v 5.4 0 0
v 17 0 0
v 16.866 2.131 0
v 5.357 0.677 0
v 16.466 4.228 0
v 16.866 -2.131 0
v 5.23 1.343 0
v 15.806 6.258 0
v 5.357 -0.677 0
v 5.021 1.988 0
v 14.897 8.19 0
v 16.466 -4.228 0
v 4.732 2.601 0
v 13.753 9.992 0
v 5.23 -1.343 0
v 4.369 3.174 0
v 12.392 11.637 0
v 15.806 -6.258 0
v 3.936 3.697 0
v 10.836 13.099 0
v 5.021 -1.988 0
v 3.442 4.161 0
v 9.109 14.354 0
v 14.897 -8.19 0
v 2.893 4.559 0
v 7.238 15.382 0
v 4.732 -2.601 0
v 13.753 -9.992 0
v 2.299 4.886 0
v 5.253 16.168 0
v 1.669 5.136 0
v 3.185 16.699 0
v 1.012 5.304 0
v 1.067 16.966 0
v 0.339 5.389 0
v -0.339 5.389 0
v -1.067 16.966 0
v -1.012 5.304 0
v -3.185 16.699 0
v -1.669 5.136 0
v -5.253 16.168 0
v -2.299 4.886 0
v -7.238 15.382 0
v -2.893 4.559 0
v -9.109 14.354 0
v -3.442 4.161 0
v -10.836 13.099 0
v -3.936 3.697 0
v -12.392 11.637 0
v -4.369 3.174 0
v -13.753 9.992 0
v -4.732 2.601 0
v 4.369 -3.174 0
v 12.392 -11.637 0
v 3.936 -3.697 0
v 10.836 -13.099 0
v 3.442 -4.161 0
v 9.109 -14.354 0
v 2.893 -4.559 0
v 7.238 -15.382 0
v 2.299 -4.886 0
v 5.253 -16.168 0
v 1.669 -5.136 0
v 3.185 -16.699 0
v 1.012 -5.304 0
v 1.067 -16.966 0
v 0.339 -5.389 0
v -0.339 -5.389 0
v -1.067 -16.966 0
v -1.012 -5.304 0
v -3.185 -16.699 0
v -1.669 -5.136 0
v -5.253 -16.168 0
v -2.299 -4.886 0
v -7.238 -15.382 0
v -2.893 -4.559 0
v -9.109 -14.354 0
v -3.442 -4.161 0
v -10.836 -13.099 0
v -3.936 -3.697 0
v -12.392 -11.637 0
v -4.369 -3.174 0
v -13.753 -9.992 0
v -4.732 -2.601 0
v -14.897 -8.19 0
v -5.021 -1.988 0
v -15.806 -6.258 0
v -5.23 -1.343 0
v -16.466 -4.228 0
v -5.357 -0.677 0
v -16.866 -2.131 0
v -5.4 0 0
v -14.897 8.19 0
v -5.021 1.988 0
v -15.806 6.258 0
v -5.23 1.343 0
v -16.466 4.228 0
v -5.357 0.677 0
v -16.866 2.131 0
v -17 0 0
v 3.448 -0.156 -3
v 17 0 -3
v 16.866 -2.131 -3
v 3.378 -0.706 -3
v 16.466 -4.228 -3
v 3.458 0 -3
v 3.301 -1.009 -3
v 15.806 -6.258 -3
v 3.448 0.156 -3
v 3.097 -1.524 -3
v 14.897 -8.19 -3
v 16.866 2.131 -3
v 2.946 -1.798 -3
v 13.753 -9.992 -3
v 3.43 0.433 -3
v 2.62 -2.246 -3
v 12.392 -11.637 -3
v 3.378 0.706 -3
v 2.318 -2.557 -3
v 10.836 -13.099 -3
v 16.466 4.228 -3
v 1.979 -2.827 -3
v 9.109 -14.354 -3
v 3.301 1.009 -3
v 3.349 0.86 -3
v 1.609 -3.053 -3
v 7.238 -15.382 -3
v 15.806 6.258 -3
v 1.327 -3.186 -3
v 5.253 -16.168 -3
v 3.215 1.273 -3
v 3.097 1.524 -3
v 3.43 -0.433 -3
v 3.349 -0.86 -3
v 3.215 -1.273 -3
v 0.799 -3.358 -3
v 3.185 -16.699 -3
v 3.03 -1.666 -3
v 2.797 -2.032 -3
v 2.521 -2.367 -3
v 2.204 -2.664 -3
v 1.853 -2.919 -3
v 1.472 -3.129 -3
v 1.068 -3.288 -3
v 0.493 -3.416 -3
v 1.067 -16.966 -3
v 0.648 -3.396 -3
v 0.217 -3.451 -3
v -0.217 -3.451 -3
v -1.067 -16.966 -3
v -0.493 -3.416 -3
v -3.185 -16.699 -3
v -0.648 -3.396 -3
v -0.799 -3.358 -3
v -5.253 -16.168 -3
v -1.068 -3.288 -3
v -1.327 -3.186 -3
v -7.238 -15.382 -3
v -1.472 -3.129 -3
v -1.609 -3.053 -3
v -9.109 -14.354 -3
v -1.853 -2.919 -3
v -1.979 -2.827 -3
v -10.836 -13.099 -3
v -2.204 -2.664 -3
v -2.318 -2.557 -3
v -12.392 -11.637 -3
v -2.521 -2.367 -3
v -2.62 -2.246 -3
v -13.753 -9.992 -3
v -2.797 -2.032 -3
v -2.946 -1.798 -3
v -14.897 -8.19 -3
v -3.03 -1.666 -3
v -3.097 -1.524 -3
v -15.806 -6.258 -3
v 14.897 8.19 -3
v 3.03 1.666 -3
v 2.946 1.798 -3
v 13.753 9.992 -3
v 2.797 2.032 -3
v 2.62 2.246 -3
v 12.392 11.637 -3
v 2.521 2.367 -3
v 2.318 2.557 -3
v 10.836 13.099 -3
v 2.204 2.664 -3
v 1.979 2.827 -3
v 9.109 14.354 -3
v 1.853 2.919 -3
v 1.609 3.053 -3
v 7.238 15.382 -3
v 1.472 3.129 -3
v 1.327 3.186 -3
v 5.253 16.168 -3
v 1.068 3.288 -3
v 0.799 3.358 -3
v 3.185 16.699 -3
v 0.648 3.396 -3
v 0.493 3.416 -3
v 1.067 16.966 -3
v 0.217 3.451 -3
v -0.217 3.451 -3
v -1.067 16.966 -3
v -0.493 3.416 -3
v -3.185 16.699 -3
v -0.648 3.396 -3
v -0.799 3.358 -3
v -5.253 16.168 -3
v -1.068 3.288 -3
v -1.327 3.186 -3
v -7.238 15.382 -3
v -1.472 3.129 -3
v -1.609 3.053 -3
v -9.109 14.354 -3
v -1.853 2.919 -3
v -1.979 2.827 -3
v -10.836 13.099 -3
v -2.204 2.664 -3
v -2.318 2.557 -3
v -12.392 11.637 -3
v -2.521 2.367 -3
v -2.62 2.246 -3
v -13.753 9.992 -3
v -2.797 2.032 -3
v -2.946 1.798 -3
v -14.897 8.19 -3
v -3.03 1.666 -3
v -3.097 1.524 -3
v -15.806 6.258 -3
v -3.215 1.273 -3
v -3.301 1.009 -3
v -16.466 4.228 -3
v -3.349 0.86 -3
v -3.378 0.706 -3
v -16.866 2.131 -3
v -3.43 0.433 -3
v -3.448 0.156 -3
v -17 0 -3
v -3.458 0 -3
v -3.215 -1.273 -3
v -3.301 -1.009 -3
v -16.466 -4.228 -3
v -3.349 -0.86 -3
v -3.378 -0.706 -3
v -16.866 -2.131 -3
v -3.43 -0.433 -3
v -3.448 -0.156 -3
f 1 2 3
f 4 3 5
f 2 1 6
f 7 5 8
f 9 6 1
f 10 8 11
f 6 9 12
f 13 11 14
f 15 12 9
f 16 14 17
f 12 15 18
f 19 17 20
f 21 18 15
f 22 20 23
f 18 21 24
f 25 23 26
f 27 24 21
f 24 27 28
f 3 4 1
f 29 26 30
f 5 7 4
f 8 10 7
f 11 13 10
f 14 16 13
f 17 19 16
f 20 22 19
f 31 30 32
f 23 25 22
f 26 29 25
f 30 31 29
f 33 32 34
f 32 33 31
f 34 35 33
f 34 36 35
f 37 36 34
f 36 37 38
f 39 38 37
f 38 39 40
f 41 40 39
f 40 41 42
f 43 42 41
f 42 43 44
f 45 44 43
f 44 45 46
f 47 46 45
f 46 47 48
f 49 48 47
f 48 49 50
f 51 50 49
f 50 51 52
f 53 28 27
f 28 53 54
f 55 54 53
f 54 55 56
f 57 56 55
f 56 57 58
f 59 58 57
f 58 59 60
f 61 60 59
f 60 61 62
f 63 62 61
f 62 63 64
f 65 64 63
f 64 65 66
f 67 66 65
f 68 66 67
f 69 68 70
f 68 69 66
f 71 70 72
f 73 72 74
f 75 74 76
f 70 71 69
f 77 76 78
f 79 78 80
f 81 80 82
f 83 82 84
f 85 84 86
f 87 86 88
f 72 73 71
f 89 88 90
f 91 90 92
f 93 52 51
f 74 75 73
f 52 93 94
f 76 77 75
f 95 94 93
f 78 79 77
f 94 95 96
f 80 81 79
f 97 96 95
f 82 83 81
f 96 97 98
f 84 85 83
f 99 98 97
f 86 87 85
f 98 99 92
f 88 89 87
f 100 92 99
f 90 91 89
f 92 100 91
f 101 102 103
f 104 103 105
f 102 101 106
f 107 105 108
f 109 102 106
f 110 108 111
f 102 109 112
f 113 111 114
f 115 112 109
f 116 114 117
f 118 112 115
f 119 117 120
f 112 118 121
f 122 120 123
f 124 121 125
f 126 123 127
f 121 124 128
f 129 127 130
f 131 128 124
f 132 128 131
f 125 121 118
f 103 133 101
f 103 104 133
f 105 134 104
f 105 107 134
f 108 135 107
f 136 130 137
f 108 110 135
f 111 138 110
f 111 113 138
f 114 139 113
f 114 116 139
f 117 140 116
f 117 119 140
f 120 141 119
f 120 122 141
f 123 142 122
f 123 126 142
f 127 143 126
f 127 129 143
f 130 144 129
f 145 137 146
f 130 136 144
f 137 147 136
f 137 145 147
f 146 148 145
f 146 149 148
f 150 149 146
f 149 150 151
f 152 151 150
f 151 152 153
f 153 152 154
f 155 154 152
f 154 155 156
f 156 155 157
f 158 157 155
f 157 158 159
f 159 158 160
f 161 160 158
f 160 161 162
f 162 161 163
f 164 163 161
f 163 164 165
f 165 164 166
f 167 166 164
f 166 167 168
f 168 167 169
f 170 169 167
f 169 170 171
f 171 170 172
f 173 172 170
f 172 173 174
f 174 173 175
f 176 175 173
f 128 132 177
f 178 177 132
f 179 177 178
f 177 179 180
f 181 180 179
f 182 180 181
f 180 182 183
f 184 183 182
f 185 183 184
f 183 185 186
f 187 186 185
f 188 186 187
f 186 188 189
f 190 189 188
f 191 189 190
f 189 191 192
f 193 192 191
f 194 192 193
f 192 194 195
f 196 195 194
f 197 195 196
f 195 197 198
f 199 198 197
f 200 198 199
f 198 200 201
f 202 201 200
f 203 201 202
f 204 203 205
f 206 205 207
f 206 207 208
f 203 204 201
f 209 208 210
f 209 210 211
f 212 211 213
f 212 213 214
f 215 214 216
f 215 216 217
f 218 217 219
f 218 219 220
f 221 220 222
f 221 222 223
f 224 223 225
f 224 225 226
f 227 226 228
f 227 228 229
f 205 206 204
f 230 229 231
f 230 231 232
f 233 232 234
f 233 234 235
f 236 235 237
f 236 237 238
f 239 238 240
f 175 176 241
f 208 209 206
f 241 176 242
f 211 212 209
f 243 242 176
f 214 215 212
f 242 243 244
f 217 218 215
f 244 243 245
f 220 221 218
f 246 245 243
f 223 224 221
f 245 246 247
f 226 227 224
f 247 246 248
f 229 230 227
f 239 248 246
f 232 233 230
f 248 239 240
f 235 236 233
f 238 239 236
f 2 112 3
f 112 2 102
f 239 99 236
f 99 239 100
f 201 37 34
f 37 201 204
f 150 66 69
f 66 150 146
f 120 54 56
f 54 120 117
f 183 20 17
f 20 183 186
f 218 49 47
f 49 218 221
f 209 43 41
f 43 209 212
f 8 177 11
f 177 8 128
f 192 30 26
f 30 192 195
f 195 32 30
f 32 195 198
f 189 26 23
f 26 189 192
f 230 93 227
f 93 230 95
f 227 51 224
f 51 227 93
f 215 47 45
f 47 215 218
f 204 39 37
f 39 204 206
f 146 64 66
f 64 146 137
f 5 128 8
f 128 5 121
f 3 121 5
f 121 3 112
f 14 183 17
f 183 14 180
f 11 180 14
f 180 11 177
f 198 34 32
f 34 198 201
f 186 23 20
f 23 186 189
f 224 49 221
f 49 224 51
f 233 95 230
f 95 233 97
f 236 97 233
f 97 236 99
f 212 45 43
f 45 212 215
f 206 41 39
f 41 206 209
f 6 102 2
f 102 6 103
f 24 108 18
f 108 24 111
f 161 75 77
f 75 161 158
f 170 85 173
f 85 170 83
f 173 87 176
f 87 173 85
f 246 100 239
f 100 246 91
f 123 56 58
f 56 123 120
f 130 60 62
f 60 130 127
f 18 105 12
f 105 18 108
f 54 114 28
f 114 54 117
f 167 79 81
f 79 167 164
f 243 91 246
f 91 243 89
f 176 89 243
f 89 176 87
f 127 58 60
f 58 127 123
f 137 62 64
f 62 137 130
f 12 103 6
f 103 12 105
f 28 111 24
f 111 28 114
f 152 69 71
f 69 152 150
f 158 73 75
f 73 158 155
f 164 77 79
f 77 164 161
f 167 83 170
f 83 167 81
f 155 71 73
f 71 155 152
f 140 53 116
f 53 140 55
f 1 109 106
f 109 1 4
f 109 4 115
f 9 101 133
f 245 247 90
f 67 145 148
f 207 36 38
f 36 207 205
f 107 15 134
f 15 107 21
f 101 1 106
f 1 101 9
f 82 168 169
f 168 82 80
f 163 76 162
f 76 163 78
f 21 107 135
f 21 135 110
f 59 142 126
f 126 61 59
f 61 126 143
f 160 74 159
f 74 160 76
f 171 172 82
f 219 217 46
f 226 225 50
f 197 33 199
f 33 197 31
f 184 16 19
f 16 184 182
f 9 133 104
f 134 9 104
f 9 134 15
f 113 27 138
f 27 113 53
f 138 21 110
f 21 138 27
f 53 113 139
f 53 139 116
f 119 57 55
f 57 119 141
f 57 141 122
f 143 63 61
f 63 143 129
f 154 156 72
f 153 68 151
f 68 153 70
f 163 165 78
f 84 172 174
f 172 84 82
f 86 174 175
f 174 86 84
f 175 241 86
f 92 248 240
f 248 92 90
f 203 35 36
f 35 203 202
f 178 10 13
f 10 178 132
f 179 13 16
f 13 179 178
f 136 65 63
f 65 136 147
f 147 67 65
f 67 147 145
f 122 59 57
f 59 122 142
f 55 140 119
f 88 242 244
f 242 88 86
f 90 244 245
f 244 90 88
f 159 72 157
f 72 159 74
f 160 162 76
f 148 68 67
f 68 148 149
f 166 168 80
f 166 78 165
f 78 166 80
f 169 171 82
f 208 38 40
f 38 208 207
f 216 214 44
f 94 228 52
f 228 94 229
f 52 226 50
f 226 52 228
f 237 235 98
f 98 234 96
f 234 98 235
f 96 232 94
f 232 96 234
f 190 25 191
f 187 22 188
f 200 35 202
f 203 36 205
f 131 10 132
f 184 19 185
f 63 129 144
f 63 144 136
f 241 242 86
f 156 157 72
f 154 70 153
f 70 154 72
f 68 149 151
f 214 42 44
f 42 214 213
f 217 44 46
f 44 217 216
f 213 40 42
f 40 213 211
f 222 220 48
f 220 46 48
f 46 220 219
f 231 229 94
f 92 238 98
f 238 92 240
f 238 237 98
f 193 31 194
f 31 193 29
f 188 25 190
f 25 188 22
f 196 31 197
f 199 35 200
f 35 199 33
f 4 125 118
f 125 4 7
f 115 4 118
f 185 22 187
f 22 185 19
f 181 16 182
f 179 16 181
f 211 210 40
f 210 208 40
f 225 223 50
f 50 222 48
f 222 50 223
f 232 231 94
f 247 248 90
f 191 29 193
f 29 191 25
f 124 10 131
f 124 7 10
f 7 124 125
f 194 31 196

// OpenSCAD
$fn = 50;


difference() {
	union() {
		translate(v = [0, 0, -3.0000000000]) {
			cylinder(h = 3, r = 7.0000000000);
		}
		translate(v = [0, 0, -3.0000000000]) {
			cylinder(h = 3, r = 17.0000000000);
		}
	}
	union() {
		translate(v = [0, 0, 0]) {
			rotate(a = [0, 0, 0]) {
				difference() {
					union() {
						#translate(v = [0, 0, -3.0000000000]) {
							cylinder(h = 3, r = 2.6000000000);
						}
						#translate(v = [0, 0, -3.9000000000]) {
							cylinder(h = 3.9000000000, r = 7.0000000000, r1 = 2.8750000000, r2 = 5.4000000000);
						}
						#translate(v = [0, 0, -3.0000000000]) {
							cylinder(h = 3, r = 2.8750000000);
						}
						#translate(v = [0, 0, -3.0000000000]) {
							cylinder(h = 3, r = 2.6000000000);
						}
					}
					union();
				}
			}
		}
	}
}
